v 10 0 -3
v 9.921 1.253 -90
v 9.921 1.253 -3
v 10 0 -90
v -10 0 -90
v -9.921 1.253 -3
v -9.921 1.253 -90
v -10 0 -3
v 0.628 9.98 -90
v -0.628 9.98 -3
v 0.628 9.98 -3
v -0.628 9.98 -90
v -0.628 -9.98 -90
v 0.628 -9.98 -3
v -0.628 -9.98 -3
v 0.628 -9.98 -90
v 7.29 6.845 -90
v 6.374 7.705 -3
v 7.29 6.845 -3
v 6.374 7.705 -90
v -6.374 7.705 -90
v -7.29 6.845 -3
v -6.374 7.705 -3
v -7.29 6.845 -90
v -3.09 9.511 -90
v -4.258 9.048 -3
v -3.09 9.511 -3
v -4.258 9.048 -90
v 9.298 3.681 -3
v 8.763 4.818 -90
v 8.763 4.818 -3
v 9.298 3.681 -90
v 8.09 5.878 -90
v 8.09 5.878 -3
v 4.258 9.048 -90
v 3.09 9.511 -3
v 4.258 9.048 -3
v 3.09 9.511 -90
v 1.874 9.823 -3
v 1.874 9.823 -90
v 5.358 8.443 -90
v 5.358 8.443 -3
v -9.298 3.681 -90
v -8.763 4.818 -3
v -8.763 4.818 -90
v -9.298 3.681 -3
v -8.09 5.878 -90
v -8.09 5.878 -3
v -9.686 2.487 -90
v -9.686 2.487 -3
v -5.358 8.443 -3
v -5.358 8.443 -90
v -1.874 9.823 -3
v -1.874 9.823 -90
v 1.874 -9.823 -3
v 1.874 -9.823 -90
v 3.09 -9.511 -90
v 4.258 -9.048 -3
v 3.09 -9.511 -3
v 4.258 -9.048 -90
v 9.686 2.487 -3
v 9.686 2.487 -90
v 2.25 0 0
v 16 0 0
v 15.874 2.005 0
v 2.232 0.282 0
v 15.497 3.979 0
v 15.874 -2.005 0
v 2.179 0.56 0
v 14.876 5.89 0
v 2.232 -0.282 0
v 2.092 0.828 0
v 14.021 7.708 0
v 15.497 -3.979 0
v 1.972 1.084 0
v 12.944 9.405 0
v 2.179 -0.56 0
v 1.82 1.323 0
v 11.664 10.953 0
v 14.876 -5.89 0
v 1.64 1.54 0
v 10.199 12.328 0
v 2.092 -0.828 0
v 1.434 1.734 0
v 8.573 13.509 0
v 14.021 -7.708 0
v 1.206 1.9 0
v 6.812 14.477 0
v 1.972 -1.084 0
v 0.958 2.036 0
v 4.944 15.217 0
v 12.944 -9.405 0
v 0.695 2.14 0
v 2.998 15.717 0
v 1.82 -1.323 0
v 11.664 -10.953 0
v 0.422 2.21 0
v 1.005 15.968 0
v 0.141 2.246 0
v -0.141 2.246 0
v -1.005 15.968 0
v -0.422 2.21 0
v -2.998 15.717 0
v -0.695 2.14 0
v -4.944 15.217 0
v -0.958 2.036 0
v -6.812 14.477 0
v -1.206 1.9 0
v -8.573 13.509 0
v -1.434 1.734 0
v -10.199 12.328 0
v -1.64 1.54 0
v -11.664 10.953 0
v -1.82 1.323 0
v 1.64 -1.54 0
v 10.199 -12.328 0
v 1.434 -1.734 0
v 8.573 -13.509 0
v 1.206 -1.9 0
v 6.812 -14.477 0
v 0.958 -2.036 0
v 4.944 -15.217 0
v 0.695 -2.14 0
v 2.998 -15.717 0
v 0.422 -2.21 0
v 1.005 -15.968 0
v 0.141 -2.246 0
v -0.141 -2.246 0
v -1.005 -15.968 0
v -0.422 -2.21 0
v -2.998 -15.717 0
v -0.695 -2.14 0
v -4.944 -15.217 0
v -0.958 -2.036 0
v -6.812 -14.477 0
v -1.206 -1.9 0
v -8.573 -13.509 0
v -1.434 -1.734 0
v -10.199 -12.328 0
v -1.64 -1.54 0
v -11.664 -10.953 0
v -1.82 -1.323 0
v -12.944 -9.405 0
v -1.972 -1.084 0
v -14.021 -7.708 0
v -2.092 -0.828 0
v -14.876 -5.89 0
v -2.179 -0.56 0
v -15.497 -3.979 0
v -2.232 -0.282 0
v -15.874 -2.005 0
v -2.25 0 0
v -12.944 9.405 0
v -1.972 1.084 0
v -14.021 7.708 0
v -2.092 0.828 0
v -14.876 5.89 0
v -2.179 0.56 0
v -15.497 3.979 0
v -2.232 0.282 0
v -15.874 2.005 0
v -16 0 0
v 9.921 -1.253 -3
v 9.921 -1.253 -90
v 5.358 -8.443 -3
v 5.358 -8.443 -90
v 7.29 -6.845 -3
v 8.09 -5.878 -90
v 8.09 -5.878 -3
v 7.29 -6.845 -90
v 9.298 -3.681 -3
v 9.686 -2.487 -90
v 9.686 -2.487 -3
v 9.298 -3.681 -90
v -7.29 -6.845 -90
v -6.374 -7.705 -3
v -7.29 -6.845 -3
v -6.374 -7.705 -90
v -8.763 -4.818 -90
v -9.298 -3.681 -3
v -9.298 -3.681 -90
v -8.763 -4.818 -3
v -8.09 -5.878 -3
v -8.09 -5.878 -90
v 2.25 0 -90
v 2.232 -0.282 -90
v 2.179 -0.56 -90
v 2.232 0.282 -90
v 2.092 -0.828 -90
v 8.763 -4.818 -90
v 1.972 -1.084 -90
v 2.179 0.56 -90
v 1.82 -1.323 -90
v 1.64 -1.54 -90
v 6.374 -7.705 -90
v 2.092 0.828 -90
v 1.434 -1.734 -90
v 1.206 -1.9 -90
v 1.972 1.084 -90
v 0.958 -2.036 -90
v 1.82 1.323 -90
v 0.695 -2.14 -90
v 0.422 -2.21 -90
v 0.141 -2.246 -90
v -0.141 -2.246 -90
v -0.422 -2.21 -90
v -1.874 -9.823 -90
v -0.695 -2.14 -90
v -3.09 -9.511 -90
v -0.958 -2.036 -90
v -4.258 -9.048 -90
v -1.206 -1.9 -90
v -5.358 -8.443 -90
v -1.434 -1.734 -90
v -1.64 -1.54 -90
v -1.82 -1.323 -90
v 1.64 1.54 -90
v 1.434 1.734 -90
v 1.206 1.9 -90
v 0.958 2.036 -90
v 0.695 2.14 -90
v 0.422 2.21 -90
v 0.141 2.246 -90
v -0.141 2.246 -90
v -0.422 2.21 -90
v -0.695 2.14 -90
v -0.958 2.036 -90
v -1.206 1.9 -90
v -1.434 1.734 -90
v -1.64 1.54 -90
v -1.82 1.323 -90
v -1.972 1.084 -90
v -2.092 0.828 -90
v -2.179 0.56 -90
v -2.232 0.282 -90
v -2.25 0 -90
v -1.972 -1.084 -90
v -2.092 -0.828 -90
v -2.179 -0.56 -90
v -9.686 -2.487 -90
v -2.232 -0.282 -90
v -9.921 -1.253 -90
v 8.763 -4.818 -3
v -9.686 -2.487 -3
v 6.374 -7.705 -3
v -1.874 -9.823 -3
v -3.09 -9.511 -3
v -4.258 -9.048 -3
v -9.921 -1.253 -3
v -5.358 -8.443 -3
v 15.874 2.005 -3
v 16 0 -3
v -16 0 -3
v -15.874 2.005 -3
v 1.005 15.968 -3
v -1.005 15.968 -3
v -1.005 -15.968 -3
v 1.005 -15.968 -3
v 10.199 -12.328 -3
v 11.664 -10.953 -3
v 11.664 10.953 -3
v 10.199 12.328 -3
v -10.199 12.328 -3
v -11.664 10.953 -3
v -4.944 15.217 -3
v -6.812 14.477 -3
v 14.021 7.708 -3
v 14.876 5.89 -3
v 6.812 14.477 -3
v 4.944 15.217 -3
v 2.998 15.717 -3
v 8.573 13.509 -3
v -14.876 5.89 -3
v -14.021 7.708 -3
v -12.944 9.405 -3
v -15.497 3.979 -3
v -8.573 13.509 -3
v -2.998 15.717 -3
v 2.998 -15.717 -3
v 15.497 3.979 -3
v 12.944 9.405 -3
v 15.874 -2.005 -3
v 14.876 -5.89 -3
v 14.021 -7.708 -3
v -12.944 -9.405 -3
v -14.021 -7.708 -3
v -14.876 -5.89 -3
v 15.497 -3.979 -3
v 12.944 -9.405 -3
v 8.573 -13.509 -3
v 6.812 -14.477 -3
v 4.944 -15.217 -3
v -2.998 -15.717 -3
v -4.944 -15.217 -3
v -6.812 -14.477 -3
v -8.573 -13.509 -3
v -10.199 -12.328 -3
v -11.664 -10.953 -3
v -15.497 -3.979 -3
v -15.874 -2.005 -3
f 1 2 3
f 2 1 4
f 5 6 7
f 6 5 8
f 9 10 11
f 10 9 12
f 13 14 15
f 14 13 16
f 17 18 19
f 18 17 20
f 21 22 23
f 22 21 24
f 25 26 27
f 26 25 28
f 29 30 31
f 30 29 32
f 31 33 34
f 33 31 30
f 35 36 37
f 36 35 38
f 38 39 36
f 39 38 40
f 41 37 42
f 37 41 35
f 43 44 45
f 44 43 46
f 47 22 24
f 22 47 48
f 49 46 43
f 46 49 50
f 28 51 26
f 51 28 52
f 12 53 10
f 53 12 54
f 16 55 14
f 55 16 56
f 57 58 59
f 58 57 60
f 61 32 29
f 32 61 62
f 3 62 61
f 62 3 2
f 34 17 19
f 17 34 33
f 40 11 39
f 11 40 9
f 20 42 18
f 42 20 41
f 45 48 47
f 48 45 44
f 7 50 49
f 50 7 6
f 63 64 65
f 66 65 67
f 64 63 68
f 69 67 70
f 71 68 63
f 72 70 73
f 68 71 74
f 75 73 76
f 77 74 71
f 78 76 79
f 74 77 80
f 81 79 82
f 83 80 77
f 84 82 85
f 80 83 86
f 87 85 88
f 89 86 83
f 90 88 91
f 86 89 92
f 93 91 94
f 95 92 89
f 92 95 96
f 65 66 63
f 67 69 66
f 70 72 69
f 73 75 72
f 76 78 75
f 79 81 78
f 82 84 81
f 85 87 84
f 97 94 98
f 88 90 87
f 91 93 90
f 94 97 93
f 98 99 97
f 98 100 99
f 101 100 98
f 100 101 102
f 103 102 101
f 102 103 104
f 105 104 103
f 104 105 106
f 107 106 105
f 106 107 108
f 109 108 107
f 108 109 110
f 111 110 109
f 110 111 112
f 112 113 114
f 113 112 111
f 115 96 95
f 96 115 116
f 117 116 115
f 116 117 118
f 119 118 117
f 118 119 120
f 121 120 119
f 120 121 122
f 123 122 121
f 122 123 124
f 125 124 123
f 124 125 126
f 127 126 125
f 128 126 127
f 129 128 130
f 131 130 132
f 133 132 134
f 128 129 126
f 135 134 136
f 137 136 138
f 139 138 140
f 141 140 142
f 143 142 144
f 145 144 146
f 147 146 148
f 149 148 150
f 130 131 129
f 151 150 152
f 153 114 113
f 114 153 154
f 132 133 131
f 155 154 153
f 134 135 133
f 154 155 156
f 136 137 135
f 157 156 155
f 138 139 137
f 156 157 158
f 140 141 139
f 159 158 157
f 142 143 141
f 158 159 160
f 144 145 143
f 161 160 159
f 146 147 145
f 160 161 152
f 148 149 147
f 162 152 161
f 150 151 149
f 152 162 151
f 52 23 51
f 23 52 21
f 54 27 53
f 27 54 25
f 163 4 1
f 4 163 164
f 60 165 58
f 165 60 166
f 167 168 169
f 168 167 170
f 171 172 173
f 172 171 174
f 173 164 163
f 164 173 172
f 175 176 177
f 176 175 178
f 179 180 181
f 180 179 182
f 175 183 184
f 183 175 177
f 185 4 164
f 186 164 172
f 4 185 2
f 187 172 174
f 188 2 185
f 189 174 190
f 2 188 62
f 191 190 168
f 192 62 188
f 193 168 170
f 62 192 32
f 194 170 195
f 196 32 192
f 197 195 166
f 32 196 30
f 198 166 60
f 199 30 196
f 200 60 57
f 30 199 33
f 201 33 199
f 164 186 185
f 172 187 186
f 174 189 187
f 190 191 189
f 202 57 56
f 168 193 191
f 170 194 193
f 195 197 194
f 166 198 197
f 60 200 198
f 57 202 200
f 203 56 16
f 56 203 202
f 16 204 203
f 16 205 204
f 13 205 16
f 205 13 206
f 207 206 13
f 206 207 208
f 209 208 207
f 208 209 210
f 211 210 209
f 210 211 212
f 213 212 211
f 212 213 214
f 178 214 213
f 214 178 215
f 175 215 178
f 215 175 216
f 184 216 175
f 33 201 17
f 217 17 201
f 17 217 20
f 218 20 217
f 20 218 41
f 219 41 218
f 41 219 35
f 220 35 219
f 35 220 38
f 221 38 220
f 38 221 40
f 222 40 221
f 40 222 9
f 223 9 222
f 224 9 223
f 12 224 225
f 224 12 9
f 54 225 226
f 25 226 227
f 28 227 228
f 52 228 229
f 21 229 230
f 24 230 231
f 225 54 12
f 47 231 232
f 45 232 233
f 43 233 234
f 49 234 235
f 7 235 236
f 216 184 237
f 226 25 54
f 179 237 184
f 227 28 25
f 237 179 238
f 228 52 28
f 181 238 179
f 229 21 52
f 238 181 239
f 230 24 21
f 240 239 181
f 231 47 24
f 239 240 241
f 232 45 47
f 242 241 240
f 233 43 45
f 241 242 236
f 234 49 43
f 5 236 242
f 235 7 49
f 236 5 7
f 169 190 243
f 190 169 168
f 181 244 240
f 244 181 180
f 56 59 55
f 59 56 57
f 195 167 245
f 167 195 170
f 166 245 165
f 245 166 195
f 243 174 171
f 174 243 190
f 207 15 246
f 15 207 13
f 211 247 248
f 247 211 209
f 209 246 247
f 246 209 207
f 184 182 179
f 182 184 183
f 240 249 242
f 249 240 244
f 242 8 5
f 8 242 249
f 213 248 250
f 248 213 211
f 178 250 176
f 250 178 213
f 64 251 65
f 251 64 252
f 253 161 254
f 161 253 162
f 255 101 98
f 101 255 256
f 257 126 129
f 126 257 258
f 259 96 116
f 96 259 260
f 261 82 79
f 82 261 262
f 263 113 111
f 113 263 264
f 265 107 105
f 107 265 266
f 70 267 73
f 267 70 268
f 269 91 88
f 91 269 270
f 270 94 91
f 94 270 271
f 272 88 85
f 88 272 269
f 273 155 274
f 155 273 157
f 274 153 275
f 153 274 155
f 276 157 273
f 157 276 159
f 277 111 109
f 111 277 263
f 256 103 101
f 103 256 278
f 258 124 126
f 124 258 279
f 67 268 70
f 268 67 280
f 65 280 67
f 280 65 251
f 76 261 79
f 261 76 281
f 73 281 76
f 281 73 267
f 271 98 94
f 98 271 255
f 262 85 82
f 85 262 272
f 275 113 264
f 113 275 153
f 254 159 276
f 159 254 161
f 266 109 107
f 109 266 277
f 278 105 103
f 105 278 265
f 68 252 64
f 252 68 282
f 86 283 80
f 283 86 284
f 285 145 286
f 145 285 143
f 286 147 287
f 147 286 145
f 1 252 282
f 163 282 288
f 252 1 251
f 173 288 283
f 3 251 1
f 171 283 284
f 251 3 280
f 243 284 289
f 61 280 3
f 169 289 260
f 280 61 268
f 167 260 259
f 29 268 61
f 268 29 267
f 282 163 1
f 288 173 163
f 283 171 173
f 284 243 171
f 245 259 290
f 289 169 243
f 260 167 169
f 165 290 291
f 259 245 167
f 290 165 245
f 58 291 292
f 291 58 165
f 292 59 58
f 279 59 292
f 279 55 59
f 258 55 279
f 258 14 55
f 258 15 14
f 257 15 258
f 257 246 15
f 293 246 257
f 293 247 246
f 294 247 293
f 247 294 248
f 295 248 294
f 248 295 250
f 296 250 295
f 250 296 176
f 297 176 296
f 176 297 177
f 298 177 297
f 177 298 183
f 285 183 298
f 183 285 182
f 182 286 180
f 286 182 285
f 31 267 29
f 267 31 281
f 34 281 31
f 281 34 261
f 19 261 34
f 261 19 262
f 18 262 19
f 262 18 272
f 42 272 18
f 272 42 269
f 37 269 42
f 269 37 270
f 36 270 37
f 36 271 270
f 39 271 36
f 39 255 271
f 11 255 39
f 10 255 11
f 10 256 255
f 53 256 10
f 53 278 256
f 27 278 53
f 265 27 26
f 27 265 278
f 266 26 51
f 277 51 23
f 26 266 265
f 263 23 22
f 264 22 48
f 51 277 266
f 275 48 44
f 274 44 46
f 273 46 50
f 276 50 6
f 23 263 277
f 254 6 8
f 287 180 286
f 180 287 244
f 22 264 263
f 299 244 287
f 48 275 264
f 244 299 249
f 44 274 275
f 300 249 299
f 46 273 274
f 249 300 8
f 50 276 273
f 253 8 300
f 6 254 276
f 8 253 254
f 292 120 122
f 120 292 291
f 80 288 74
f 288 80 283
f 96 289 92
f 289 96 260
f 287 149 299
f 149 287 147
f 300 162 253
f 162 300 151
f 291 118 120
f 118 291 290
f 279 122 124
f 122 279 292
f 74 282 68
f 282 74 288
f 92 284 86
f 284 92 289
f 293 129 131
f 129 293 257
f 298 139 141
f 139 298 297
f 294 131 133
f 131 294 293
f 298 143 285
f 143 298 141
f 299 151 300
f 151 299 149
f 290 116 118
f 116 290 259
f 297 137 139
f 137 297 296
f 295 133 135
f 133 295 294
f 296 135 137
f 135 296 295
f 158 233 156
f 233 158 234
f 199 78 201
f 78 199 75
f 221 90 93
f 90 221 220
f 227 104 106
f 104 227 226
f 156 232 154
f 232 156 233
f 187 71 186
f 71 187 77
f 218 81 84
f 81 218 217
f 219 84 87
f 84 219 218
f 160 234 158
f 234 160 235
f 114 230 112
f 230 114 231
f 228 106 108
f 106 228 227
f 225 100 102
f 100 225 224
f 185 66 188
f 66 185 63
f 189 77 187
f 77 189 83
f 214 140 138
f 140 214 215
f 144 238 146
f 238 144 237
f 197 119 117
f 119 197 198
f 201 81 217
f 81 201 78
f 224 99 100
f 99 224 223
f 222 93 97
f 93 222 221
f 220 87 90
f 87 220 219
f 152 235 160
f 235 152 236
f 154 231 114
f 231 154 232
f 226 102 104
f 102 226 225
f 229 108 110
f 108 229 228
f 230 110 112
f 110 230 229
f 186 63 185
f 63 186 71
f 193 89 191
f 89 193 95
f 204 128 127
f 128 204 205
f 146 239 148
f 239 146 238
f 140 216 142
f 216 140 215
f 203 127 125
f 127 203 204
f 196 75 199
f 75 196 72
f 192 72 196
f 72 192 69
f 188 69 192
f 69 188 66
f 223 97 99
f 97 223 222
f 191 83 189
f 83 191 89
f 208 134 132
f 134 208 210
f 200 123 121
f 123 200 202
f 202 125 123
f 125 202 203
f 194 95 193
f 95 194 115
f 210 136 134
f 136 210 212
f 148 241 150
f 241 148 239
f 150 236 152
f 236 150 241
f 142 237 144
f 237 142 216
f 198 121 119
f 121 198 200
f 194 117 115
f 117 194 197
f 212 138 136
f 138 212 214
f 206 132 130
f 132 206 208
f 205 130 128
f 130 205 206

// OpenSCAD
$fn = 50;


difference() {
	union() {
		translate(v = [0, 0, -90.0000000000]) {
			cylinder(h = 90, r = 10.0000000000);
		}
		translate(v = [0, 0, -3.0000000000]) {
			cylinder(h = 3, r = 16.0000000000);
		}
	}
	union() {
		#translate(v = [0, 0, -90]) {
			cylinder(h = 90, r = 2.2500000000);
		}
	}
}
